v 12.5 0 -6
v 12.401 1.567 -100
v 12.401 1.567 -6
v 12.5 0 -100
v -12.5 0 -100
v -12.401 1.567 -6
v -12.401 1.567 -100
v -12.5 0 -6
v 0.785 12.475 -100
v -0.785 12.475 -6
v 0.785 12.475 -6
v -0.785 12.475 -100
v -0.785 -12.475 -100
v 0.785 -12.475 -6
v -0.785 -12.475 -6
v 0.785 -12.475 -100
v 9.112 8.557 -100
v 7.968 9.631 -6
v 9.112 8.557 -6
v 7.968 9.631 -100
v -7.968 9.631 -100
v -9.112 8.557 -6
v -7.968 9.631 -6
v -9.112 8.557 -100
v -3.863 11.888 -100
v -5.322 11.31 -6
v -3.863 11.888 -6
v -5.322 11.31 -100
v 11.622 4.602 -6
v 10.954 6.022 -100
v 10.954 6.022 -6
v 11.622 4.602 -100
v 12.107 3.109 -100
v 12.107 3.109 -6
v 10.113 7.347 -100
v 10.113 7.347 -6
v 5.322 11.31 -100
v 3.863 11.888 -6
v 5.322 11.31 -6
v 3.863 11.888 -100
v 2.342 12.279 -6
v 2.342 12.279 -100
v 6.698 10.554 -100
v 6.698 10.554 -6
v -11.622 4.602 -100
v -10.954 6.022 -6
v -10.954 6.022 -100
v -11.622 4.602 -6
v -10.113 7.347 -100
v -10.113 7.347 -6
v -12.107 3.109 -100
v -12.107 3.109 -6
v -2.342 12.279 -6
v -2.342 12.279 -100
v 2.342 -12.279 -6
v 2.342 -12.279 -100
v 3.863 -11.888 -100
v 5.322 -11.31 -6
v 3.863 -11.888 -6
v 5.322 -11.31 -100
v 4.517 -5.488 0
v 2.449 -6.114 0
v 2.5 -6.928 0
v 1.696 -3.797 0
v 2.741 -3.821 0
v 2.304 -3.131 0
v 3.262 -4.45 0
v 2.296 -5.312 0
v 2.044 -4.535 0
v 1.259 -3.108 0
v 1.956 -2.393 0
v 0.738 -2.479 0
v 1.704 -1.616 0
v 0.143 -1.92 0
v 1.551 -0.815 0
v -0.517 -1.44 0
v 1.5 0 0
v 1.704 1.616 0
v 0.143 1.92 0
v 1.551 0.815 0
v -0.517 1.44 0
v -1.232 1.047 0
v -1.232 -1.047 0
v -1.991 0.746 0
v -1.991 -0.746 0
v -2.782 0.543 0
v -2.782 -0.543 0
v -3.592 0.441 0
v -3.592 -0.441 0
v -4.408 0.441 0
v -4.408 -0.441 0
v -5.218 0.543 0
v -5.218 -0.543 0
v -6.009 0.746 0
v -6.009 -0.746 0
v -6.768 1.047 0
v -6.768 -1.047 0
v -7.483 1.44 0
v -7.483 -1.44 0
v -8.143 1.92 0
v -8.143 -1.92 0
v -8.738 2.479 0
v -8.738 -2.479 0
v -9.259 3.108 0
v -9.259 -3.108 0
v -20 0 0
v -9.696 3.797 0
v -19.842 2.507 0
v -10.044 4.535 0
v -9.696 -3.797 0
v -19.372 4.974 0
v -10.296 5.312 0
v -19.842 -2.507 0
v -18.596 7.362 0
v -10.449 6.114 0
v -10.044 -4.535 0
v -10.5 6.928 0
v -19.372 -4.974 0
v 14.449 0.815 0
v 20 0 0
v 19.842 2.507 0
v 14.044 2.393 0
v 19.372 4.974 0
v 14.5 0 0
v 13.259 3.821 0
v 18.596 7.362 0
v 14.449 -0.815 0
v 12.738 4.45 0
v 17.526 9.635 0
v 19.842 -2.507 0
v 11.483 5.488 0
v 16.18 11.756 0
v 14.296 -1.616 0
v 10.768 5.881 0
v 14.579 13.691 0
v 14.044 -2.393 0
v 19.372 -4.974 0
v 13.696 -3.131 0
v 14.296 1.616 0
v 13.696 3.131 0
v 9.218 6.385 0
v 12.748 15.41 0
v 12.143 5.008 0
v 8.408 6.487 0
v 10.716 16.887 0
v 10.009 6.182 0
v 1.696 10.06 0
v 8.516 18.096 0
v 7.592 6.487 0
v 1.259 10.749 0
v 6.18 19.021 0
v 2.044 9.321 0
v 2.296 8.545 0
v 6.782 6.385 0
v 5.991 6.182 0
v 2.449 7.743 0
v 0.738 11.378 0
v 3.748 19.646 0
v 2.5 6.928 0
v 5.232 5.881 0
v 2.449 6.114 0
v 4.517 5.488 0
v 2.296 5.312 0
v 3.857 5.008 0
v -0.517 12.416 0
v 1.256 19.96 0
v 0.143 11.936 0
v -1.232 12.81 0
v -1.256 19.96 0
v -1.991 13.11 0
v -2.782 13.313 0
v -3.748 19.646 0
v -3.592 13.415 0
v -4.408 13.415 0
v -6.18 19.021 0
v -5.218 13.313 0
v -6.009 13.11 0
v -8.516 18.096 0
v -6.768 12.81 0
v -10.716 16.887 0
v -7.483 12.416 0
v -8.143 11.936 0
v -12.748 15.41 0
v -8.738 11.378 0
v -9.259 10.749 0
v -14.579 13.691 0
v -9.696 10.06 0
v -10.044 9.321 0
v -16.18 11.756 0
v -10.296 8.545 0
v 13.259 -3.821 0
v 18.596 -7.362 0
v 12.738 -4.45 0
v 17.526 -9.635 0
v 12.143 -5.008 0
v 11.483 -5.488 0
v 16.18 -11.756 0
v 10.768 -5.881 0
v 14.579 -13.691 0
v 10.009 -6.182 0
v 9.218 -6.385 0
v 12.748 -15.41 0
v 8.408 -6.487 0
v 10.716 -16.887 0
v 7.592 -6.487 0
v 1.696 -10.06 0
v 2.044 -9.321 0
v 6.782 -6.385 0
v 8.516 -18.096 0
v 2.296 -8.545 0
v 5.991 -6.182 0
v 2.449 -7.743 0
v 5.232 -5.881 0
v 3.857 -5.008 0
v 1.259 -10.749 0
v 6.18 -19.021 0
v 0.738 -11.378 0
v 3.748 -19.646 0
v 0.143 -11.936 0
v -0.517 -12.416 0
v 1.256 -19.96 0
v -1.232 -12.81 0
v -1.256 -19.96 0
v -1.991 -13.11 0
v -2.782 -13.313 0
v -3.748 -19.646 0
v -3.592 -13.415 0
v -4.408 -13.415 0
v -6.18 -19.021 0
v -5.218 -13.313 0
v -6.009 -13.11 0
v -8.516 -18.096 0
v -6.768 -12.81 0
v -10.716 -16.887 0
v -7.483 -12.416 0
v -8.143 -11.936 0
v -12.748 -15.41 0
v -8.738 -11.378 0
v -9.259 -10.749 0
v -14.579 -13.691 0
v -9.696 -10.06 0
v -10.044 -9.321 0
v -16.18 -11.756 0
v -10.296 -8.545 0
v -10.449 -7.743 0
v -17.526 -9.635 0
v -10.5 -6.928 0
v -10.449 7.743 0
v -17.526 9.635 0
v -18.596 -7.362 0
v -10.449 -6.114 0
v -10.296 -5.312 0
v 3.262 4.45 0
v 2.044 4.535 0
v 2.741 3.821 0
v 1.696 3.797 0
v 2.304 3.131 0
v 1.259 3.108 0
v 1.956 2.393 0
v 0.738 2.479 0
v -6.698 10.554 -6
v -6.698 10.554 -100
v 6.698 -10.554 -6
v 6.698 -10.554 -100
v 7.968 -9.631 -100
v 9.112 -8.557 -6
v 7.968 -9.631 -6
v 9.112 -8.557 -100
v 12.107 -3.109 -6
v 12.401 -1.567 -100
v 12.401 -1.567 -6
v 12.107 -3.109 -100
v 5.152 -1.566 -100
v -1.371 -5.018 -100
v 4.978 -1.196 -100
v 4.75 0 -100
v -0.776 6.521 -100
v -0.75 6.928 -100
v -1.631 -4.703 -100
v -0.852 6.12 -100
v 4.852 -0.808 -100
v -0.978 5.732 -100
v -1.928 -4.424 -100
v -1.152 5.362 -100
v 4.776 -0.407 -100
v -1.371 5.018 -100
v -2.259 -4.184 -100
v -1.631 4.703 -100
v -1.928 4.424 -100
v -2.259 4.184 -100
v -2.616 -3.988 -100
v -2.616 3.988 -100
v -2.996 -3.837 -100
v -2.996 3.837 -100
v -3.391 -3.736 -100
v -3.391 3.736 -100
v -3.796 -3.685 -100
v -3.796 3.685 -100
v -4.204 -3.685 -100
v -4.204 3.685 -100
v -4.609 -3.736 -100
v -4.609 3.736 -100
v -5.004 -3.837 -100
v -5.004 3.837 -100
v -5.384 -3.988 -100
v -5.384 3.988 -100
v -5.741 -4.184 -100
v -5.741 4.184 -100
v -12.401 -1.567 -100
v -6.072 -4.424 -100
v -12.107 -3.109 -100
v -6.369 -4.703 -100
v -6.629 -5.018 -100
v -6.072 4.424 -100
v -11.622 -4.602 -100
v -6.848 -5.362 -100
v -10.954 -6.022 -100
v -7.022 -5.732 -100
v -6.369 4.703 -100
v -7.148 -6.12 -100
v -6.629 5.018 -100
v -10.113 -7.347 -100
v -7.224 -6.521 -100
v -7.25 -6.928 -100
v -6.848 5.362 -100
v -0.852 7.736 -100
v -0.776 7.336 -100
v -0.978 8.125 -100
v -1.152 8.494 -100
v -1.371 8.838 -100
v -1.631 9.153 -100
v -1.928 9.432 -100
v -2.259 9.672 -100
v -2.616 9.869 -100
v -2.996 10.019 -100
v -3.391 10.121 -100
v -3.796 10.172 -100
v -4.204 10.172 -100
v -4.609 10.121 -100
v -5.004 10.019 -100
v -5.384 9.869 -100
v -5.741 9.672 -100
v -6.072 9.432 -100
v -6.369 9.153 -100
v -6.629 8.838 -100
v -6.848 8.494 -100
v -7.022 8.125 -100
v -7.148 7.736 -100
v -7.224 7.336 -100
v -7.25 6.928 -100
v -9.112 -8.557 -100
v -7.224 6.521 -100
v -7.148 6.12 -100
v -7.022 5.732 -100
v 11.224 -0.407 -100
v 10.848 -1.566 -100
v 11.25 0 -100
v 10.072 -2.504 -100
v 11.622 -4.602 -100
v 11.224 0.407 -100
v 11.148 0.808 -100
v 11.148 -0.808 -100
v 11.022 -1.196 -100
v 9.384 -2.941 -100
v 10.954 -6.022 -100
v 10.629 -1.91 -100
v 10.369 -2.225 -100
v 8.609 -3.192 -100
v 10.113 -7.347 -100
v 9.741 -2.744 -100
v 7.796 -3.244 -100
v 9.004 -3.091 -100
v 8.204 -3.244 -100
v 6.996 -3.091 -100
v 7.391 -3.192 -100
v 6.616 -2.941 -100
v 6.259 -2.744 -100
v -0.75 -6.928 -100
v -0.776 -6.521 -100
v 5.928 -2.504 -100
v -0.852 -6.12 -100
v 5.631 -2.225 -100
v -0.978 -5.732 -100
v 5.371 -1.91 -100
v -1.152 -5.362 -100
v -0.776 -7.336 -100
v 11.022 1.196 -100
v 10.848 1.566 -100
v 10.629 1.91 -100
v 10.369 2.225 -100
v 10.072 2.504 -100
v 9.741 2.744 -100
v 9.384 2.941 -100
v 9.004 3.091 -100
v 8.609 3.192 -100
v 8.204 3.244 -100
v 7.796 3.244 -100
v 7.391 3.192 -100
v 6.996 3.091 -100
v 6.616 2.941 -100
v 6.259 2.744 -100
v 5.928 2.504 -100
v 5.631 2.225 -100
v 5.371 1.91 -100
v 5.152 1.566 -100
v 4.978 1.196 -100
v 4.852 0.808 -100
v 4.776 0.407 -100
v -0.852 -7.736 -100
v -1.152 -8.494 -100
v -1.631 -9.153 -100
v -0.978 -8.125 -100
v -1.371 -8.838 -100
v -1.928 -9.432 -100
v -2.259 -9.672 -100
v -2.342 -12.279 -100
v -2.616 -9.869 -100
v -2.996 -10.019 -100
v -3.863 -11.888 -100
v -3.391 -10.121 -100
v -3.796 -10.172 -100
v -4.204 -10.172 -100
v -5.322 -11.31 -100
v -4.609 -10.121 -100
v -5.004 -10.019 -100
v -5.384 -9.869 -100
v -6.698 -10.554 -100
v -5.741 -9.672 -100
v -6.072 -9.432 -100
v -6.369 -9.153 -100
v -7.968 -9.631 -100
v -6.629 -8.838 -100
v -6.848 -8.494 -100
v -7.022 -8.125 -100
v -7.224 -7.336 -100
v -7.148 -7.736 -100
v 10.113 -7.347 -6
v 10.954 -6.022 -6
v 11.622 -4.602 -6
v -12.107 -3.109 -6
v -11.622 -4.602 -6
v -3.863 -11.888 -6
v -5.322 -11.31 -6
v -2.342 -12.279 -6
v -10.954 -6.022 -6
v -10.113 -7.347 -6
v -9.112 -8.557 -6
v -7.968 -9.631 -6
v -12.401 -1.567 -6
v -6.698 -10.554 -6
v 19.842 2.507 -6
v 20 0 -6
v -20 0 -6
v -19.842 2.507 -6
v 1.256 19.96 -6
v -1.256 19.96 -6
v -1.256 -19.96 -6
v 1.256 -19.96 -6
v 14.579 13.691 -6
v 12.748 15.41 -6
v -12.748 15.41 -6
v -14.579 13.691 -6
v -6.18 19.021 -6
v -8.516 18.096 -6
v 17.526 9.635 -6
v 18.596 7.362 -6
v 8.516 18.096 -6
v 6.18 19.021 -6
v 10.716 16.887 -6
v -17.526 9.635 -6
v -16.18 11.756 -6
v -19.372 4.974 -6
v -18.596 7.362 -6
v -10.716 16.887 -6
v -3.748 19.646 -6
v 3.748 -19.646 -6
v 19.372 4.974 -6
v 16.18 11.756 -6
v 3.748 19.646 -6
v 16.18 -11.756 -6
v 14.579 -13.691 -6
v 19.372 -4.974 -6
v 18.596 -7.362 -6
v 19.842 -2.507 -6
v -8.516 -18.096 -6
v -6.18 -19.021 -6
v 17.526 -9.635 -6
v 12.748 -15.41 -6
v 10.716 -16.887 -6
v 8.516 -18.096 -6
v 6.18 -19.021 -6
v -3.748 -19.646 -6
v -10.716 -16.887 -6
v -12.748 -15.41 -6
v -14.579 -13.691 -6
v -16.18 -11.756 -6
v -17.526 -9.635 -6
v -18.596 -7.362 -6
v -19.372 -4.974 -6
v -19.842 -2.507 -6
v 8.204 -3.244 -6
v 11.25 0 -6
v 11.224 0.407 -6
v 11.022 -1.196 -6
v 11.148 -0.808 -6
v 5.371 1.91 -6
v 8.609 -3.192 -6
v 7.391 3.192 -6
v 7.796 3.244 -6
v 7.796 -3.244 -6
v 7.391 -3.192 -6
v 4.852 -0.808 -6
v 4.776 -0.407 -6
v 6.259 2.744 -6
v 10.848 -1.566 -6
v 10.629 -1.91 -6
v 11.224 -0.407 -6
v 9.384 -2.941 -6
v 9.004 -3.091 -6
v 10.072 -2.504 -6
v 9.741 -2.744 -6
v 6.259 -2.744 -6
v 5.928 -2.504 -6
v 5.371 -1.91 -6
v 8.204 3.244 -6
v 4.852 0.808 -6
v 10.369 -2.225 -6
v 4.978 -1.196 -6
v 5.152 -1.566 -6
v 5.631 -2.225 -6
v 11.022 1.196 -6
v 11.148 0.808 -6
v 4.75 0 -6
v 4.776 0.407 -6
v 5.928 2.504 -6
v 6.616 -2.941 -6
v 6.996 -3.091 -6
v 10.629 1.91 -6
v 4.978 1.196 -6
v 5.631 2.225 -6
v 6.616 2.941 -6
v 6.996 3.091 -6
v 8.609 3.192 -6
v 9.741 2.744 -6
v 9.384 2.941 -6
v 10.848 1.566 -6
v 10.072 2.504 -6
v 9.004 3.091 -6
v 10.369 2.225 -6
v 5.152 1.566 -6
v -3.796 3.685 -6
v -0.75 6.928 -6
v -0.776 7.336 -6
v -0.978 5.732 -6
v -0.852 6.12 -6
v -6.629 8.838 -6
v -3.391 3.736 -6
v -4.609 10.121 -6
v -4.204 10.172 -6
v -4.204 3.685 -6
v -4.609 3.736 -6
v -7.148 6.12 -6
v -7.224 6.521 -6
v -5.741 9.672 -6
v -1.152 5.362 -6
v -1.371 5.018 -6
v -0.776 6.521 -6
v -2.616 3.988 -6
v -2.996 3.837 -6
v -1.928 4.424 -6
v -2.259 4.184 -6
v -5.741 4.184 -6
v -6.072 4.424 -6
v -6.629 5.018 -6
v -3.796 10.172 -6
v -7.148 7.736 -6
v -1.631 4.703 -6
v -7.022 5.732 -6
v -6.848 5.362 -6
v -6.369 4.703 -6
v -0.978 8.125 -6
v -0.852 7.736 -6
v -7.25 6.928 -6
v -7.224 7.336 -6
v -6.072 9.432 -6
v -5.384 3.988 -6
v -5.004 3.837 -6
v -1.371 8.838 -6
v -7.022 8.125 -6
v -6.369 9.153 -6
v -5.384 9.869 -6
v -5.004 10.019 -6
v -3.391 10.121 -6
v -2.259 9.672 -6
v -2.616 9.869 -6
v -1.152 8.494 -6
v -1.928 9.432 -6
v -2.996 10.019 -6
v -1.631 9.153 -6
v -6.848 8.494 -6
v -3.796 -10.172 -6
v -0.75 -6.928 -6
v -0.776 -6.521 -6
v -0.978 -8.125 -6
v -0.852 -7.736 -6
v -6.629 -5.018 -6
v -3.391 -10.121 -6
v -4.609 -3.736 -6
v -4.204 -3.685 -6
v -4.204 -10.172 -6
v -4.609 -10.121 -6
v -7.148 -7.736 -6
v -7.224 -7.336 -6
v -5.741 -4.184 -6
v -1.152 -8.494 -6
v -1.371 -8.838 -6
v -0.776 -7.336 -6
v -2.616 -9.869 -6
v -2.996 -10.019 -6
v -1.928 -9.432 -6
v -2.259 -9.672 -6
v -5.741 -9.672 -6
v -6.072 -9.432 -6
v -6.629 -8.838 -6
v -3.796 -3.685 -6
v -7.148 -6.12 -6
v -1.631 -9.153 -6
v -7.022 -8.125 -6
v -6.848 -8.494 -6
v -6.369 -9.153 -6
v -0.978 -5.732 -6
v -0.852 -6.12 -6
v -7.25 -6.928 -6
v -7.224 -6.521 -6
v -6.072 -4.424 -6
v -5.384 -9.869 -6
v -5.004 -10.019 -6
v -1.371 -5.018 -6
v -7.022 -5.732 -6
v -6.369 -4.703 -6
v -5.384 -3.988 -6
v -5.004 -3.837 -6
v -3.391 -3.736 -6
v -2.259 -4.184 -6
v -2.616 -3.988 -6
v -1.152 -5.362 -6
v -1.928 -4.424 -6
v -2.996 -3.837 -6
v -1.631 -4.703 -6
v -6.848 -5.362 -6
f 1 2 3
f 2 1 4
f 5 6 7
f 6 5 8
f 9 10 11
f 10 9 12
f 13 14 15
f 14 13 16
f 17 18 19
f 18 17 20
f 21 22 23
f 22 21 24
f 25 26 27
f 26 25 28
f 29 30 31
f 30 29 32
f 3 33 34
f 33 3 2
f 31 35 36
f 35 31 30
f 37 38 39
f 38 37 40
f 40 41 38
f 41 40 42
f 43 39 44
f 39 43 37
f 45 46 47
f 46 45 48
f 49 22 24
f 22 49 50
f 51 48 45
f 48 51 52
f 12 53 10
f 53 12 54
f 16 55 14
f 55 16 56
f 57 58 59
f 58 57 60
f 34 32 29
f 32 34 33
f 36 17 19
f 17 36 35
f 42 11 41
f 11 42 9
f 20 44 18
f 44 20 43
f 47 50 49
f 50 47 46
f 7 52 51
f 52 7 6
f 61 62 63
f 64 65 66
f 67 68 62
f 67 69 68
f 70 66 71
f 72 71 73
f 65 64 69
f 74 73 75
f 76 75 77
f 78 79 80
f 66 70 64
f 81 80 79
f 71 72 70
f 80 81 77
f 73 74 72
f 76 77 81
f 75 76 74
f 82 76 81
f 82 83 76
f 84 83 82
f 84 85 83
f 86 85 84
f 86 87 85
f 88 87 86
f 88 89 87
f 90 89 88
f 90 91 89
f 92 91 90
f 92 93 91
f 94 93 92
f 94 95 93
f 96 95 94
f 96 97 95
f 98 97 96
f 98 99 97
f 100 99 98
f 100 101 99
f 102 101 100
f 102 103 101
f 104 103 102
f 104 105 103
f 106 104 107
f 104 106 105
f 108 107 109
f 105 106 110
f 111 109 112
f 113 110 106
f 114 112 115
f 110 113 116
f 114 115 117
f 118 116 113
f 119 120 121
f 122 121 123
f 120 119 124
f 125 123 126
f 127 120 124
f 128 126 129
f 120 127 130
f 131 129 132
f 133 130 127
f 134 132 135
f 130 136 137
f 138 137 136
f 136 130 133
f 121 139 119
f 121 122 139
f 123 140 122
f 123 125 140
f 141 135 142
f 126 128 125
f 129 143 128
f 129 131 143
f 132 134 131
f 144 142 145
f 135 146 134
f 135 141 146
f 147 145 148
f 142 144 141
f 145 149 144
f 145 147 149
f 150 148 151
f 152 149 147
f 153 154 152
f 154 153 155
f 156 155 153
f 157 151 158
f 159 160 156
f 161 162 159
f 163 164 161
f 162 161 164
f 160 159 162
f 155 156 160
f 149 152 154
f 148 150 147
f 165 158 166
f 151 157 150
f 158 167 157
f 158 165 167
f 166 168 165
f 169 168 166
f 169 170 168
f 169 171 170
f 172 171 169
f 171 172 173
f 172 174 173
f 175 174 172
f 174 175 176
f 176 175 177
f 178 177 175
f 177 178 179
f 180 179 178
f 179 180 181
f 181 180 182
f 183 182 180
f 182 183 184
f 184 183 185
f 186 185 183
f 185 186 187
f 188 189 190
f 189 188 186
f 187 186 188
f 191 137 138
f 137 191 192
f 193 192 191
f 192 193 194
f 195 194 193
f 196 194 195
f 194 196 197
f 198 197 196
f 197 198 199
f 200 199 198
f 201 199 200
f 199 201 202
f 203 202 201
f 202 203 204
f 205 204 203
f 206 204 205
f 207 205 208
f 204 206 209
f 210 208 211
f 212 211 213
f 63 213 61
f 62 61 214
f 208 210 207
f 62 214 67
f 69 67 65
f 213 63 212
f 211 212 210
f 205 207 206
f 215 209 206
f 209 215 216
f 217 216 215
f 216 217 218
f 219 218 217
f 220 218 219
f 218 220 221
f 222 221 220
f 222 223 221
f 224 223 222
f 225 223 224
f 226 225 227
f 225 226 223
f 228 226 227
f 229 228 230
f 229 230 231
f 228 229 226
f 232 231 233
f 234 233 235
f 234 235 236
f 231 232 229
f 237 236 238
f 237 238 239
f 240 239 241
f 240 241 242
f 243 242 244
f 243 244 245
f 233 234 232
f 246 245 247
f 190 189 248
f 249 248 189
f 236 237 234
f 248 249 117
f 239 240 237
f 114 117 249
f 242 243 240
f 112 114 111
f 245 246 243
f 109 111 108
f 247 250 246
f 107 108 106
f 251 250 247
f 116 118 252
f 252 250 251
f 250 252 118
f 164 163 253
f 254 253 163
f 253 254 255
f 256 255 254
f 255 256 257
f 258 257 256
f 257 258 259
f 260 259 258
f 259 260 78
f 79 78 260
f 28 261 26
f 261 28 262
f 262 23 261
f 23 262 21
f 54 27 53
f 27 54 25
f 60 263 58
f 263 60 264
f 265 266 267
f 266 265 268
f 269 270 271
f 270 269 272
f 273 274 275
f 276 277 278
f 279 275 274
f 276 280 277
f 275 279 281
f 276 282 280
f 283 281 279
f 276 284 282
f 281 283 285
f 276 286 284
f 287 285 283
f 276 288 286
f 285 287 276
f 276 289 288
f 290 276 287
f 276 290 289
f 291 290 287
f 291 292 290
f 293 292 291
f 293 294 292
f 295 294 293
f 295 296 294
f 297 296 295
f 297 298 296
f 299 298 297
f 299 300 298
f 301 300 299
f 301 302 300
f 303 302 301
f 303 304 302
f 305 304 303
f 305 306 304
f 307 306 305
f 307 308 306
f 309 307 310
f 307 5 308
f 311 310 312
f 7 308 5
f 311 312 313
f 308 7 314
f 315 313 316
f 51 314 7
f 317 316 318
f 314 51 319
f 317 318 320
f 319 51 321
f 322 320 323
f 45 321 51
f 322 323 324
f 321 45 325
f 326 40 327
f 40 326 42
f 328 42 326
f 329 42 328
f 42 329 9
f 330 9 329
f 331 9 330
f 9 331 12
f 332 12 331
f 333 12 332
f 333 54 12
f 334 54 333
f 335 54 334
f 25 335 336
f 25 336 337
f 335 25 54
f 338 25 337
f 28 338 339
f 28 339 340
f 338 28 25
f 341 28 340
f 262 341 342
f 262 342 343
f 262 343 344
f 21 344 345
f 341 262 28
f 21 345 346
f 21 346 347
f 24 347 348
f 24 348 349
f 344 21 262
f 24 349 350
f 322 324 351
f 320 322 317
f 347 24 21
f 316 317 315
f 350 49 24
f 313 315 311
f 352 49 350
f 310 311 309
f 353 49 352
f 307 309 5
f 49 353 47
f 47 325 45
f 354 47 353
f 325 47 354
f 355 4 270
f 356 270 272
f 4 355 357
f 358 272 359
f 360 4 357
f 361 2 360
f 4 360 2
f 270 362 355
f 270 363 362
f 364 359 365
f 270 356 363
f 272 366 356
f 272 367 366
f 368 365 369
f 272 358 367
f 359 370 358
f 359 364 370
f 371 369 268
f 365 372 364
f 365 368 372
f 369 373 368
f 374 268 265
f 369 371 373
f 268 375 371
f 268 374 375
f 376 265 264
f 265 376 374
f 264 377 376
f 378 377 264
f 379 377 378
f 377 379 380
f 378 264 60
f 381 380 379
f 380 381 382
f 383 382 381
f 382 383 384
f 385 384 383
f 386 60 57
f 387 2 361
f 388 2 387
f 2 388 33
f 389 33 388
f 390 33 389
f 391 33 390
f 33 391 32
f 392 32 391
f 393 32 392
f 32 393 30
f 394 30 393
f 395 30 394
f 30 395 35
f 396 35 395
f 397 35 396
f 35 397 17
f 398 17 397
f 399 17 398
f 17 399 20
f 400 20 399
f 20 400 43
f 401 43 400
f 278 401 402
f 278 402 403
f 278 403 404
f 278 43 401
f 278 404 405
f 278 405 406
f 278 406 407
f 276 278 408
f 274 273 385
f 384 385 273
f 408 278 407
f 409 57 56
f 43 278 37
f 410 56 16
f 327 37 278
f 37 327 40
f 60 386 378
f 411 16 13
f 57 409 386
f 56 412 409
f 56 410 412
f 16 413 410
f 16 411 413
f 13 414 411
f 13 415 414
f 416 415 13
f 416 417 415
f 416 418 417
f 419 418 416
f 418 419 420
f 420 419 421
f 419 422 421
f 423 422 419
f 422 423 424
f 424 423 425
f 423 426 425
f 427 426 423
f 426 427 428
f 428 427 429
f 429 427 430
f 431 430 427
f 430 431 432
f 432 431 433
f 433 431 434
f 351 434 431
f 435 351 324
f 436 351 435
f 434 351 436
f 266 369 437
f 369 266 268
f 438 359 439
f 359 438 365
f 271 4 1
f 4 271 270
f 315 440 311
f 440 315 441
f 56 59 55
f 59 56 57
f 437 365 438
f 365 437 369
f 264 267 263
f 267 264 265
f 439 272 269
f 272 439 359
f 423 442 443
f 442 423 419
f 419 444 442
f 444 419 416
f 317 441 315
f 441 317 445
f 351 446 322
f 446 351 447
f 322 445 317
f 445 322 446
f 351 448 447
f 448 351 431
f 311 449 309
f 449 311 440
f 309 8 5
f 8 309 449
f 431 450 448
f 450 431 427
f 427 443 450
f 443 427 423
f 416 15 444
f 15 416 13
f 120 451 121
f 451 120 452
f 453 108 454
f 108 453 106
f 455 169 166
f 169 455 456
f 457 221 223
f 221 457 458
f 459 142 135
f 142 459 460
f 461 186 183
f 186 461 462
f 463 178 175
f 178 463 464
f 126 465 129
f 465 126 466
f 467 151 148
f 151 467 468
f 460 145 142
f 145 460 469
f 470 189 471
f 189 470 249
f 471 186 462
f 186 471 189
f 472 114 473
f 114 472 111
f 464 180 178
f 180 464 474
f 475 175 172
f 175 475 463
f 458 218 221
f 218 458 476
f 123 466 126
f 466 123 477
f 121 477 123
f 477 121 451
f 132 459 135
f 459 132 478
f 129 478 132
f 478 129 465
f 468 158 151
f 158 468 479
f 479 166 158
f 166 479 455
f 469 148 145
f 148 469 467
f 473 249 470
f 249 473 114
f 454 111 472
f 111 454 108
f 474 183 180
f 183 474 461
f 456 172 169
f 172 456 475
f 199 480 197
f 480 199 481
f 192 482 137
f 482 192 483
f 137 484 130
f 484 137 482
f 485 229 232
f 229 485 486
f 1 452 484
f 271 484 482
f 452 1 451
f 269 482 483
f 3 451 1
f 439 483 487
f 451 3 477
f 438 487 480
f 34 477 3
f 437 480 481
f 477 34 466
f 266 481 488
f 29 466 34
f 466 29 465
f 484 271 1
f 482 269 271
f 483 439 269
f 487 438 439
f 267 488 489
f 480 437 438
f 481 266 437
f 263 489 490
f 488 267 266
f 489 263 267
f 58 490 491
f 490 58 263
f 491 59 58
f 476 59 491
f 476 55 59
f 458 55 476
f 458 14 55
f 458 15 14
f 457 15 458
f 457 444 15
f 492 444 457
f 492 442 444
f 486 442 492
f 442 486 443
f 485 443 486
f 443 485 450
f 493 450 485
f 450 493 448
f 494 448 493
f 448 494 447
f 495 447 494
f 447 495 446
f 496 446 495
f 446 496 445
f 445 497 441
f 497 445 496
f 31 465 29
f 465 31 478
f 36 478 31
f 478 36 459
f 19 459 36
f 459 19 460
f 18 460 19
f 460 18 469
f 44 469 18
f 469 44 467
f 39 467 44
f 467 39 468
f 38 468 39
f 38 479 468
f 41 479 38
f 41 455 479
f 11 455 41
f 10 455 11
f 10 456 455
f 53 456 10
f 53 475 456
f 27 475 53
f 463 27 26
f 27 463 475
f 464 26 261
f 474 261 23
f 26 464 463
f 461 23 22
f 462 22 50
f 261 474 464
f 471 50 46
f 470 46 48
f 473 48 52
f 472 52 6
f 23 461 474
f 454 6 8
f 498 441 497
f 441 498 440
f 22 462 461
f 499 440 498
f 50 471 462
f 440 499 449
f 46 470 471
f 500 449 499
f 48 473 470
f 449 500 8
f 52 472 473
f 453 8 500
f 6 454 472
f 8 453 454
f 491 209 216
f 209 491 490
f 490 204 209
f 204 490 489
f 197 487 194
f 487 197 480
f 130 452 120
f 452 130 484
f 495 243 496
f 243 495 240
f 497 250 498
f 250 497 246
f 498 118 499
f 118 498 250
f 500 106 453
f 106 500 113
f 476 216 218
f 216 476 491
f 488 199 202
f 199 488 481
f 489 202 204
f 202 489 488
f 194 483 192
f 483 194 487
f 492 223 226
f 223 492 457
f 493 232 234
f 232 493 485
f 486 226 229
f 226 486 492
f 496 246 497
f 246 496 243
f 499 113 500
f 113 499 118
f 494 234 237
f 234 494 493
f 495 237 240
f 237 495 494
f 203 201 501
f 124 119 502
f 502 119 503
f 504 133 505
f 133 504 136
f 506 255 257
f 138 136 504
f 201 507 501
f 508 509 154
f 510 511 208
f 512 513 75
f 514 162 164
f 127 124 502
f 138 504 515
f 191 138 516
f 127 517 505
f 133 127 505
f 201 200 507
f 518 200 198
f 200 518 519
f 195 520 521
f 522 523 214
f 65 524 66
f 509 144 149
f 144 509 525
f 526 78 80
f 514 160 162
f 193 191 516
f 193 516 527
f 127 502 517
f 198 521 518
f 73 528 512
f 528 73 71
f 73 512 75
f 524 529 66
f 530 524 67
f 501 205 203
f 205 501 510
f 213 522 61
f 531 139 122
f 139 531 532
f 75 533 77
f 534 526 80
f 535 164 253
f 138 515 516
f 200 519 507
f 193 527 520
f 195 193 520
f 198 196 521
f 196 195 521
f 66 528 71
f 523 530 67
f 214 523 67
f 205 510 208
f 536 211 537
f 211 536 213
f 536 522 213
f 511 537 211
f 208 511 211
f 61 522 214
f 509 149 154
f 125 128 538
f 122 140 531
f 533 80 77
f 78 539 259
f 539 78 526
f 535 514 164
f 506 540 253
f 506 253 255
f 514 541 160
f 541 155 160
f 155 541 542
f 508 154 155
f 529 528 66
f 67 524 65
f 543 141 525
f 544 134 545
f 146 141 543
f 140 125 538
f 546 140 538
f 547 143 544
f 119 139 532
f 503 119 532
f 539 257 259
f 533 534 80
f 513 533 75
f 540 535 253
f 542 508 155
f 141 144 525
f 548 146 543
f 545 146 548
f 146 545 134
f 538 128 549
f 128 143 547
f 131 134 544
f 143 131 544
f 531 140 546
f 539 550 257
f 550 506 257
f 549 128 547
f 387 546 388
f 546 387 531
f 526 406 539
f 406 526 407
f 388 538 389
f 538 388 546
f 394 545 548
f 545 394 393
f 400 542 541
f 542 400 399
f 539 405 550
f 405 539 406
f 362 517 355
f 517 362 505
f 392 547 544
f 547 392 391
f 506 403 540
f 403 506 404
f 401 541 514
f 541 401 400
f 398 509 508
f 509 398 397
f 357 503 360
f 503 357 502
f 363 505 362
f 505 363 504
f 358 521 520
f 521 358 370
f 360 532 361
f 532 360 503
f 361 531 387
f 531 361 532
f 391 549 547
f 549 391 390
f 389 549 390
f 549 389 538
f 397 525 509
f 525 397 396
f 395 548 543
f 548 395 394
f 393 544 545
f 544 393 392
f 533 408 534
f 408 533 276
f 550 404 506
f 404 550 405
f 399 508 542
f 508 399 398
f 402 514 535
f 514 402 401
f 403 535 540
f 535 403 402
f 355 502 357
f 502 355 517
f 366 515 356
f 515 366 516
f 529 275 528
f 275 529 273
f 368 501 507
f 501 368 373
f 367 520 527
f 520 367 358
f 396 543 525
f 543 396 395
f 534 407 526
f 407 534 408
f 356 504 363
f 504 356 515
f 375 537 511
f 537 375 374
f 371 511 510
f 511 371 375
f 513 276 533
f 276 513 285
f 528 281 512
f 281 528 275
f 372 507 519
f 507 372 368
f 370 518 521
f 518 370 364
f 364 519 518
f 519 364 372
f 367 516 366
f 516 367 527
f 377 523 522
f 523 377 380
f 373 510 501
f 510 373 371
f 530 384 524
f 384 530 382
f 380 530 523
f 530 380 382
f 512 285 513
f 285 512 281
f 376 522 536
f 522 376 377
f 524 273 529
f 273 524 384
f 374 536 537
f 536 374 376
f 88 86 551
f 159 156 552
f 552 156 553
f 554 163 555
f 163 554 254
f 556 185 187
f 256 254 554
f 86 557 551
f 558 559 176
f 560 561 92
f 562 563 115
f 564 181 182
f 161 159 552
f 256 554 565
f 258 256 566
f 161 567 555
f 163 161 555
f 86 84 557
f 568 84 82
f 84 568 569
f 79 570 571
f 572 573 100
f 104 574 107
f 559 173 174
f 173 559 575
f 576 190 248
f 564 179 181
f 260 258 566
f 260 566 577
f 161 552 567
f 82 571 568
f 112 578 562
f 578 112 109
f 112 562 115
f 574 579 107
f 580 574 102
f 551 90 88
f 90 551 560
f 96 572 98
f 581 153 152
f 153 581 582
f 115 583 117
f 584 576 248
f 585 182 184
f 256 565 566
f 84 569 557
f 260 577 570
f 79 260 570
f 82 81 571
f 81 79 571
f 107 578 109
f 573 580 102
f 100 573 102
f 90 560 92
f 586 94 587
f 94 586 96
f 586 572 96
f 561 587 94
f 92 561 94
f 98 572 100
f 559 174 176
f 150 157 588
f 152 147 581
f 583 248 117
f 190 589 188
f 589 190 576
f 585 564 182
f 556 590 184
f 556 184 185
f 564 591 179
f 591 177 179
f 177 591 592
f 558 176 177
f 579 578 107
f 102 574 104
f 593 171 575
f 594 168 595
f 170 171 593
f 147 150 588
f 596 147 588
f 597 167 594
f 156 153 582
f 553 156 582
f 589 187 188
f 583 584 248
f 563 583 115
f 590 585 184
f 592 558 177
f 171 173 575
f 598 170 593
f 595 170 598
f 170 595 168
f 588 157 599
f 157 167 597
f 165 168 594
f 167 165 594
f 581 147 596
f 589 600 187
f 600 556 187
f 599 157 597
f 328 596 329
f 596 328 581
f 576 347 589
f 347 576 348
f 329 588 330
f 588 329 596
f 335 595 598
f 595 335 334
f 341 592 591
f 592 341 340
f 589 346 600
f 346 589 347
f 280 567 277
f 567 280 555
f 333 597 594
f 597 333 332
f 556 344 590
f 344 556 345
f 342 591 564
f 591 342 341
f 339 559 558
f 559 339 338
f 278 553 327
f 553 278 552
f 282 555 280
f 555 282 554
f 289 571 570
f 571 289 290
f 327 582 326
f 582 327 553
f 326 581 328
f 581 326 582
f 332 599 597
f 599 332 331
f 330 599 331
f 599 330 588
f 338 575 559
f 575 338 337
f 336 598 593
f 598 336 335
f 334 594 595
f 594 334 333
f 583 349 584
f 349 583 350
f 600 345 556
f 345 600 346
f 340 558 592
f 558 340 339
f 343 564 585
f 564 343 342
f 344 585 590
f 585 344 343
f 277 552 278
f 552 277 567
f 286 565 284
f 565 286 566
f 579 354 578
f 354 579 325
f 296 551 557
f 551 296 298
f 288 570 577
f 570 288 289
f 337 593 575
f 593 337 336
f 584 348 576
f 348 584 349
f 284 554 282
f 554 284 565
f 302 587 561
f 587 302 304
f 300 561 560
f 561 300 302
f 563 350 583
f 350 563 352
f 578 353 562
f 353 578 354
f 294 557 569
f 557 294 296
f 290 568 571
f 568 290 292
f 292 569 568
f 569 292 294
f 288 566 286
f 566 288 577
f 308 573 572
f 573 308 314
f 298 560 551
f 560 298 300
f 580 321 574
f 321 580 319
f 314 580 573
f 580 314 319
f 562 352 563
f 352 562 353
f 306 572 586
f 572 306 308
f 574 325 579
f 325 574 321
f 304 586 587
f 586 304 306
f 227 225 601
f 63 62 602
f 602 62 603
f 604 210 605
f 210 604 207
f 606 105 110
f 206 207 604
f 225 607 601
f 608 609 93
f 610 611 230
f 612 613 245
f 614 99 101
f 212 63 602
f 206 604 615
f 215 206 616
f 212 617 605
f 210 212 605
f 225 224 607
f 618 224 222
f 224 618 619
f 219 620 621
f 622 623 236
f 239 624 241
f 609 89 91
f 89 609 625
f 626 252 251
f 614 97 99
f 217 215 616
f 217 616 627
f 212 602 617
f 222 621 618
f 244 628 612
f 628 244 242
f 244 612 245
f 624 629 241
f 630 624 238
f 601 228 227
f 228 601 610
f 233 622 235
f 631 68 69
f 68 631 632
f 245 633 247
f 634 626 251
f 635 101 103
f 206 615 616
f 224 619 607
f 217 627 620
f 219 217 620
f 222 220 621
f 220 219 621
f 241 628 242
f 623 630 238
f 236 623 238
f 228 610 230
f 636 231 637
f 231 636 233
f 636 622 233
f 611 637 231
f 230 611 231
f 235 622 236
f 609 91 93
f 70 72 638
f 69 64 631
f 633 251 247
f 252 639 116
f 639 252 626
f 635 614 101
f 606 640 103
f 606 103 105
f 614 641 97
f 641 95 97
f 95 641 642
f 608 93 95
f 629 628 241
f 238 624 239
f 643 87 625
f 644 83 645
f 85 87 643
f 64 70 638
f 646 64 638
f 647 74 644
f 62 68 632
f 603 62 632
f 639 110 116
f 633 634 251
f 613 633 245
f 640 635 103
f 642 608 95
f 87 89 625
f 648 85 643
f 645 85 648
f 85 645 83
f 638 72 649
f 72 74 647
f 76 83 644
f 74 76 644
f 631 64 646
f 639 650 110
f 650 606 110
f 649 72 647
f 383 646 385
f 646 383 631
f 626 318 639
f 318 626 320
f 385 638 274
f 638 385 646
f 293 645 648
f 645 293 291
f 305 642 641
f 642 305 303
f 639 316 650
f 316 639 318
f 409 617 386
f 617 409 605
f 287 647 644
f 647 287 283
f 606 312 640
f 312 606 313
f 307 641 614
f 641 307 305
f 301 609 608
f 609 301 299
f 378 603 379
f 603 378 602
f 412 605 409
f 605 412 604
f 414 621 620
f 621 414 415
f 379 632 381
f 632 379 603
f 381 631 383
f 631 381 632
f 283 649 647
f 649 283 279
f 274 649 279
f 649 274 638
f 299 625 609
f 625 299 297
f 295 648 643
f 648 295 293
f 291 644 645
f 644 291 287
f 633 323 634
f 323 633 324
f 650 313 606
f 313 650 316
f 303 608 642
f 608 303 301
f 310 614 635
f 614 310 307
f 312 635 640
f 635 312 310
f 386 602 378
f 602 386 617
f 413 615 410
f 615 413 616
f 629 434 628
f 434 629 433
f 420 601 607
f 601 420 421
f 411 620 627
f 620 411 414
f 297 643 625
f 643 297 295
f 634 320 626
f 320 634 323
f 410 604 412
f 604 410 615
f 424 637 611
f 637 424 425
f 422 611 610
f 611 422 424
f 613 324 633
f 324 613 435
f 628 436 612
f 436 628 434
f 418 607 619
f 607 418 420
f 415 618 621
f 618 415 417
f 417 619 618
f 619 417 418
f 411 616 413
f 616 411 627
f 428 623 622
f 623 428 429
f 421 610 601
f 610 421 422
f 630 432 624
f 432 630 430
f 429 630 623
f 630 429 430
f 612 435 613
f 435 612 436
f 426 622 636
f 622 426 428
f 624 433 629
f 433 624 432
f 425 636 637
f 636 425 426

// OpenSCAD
$fn = 50;


difference() {
	union() {
		translate(v = [0, 0, -100.0000000000]) {
			cylinder(h = 100, r = 12.5000000000);
		}
		translate(v = [0, 0, -6.0000000000]) {
			cylinder(h = 6, r = 20.0000000000);
		}
	}
	union() {
		translate(v = [8.0000000000, 0.0000000000, 0]) {
			rotate(a = [0, 0, 0]) {
				difference() {
					union() {
						#translate(v = [0, 0, -100.0000000000]) {
							cylinder(h = 100, r = 2.2500000000);
						}
						#translate(v = [0, 0, -6]) {
							cylinder(h = 6, r = 12.5000000000, r1 = 3.2500000000, r2 = 6.5000000000);
						}
						#translate(v = [0, 0, -100.0000000000]) {
							cylinder(h = 100, r = 3.2500000000);
						}
						#translate(v = [0, 0, -100.0000000000]) {
							cylinder(h = 100, r = 2.2500000000);
						}
					}
					union();
				}
			}
		}
		translate(v = [-4.0000000000, 6.9282032303, 0]) {
			rotate(a = [0, 0, 0]) {
				difference() {
					union() {
						#translate(v = [0, 0, -100.0000000000]) {
							cylinder(h = 100, r = 2.2500000000);
						}
						#translate(v = [0, 0, -6]) {
							cylinder(h = 6, r = 12.5000000000, r1 = 3.2500000000, r2 = 6.5000000000);
						}
						#translate(v = [0, 0, -100.0000000000]) {
							cylinder(h = 100, r = 3.2500000000);
						}
						#translate(v = [0, 0, -100.0000000000]) {
							cylinder(h = 100, r = 2.2500000000);
						}
					}
					union();
				}
			}
		}
		translate(v = [-4.0000000000, -6.9282032303, 0]) {
			rotate(a = [0, 0, 0]) {
				difference() {
					union() {
						#translate(v = [0, 0, -100.0000000000]) {
							cylinder(h = 100, r = 2.2500000000);
						}
						#translate(v = [0, 0, -6]) {
							cylinder(h = 6, r = 12.5000000000, r1 = 3.2500000000, r2 = 6.5000000000);
						}
						#translate(v = [0, 0, -100.0000000000]) {
							cylinder(h = 100, r = 3.2500000000);
						}
						#translate(v = [0, 0, -100.0000000000]) {
							cylinder(h = 100, r = 2.2500000000);
						}
					}
					union();
				}
			}
		}
	}
}
